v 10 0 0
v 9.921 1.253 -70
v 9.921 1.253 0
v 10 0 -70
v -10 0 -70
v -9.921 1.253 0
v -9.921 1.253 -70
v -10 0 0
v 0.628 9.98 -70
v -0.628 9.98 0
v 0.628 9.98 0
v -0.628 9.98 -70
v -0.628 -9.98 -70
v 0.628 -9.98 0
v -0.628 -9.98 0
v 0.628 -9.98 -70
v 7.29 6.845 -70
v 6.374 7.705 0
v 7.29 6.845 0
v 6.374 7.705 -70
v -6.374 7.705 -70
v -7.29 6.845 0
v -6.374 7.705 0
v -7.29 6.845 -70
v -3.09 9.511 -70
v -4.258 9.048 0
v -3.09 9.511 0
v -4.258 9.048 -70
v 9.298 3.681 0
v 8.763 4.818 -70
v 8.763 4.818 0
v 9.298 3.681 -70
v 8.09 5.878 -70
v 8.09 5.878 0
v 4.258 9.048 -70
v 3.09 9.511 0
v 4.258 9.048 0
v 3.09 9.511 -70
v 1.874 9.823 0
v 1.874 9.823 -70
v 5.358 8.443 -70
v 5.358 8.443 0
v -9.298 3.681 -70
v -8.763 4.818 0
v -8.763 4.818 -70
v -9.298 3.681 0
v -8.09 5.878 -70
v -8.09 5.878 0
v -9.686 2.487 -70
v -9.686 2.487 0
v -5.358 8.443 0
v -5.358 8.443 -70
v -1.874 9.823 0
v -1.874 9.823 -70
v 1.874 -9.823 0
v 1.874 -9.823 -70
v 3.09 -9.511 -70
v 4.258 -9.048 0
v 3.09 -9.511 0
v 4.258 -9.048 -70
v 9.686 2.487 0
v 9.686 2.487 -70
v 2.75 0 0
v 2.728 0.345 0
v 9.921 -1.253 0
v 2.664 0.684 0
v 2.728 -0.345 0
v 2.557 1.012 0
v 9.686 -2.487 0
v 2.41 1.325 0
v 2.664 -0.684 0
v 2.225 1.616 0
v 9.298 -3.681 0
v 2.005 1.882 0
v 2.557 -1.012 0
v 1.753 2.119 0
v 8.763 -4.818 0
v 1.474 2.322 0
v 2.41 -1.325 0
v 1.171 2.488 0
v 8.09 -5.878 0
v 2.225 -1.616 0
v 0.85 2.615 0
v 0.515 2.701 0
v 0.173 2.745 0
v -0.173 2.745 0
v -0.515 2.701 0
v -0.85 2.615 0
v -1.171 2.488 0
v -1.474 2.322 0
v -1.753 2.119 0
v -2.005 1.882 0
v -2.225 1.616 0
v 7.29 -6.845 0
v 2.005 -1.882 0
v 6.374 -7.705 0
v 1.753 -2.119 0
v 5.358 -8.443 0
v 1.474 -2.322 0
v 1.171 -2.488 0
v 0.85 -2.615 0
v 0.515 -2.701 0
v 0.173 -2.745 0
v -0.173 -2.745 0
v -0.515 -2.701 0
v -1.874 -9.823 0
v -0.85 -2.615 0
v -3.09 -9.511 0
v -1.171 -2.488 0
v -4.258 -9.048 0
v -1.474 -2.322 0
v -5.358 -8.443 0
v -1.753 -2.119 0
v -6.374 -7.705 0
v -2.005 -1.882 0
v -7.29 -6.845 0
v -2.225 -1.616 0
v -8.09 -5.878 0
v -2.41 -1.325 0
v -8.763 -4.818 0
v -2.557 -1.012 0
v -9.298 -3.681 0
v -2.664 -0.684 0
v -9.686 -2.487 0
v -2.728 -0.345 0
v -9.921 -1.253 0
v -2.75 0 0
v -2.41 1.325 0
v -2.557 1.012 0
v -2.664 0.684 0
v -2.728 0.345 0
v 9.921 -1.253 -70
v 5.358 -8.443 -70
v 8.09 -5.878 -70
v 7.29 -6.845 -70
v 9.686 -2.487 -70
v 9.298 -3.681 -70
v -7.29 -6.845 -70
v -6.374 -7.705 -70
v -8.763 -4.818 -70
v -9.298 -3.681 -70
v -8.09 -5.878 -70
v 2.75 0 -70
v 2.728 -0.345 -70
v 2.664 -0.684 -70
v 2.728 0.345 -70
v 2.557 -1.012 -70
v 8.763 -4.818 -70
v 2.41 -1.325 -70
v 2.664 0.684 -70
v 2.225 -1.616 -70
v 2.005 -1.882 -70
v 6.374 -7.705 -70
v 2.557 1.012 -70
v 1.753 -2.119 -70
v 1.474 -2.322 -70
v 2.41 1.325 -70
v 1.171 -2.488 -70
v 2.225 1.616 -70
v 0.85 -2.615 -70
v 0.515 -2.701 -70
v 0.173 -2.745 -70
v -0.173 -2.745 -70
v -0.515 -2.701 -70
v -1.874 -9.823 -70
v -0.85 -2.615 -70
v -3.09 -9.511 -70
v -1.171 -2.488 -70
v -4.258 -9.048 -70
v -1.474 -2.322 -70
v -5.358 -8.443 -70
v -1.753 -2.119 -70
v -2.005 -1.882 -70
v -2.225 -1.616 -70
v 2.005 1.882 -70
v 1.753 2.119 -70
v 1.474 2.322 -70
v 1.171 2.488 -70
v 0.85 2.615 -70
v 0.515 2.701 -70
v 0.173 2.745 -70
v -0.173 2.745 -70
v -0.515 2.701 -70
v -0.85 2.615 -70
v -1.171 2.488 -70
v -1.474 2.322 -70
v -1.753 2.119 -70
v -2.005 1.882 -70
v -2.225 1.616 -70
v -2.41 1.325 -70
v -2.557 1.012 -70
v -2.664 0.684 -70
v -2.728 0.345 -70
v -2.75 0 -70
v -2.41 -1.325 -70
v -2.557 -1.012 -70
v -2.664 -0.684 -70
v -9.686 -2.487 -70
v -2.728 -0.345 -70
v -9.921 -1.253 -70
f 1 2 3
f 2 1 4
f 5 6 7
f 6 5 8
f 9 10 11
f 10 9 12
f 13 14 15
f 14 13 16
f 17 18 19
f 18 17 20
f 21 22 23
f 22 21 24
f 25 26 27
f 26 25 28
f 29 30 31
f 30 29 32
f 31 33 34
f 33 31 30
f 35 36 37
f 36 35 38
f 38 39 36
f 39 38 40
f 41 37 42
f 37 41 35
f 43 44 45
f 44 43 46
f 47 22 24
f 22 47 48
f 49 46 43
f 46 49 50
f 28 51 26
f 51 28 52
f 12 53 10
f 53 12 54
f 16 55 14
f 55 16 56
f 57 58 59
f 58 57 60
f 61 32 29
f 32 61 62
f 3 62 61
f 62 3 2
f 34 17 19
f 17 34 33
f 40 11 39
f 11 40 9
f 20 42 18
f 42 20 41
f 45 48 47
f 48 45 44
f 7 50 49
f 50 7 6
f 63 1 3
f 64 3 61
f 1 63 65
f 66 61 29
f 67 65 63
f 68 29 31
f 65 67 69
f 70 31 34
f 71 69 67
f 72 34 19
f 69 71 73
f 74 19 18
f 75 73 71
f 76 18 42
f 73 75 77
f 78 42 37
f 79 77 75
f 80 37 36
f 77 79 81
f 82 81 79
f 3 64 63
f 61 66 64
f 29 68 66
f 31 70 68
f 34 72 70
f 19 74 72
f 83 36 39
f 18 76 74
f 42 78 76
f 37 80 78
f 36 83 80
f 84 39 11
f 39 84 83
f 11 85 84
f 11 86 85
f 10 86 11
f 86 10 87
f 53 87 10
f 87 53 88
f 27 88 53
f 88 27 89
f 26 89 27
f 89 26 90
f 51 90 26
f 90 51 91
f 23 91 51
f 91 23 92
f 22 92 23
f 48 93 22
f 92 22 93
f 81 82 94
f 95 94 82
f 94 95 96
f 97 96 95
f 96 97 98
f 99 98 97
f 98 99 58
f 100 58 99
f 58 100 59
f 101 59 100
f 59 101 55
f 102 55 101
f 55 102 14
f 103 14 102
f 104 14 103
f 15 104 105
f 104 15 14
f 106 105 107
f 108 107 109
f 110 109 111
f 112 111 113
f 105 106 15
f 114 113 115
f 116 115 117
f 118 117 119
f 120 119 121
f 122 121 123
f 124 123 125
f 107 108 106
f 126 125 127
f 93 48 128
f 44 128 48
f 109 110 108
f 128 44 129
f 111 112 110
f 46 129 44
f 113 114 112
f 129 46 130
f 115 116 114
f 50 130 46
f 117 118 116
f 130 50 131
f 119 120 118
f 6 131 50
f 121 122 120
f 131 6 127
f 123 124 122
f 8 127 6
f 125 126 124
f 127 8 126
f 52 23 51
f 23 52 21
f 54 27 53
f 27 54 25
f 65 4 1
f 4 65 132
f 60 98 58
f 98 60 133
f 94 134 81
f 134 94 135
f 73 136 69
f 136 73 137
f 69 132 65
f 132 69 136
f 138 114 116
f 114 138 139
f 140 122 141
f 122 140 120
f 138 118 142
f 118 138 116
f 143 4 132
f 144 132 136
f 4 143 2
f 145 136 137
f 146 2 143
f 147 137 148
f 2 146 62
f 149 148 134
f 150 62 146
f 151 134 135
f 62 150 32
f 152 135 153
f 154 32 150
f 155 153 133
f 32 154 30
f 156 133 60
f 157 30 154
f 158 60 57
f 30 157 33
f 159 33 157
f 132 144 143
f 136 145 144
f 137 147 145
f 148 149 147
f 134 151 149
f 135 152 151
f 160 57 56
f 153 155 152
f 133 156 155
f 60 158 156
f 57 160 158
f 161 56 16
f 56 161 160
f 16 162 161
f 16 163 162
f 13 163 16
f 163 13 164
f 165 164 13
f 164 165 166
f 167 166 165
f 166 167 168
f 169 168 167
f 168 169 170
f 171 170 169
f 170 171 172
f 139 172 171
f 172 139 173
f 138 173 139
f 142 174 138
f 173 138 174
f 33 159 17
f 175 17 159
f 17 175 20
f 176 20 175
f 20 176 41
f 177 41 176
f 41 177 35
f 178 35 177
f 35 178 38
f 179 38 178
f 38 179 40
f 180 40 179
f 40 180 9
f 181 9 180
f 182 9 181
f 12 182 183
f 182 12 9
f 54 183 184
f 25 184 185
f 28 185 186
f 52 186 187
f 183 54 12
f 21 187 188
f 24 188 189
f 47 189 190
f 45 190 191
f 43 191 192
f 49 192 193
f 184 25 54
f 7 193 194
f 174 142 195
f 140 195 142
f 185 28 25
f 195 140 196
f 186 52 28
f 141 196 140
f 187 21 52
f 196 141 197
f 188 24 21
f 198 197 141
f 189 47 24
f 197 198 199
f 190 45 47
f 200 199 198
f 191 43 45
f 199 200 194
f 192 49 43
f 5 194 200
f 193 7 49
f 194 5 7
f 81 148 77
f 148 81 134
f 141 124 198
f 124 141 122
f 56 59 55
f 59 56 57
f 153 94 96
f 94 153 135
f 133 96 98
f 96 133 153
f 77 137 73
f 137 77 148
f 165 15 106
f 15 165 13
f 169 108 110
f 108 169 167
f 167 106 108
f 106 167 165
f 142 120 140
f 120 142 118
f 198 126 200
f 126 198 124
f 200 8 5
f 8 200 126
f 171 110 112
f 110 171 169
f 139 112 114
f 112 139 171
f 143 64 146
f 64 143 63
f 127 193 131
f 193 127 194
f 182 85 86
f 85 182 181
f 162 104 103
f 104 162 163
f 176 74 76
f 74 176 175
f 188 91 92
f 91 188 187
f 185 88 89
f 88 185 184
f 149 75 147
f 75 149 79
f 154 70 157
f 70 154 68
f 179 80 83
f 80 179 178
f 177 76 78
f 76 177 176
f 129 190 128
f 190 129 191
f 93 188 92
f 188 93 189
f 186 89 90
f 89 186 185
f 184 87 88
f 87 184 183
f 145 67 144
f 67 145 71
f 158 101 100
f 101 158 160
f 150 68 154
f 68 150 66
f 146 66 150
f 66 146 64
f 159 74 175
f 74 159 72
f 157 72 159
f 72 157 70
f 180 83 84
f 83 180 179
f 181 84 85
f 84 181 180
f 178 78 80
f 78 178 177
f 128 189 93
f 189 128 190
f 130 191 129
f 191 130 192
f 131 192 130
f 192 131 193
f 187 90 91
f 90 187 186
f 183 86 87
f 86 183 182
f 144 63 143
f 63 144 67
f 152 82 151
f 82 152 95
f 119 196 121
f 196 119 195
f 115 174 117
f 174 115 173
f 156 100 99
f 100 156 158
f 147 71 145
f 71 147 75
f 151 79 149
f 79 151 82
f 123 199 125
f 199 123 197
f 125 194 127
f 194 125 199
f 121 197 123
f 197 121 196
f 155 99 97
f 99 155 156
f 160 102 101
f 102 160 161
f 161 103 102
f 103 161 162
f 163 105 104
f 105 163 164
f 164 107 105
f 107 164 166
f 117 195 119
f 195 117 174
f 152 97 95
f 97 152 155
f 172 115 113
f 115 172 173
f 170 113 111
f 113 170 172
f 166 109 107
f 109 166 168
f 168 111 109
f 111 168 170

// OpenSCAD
$fn = 50;


difference() {
	union() {
		translate(v = [0, 0, -70.0000000000]) {
			cylinder(h = 70, r = 10.0000000000);
		}
		cylinder(h = 0, r = 13.0000000000);
	}
	union() {
		#translate(v = [0, 0, -70]) {
			cylinder(h = 70, r = 2.7500000000);
		}
	}
}
